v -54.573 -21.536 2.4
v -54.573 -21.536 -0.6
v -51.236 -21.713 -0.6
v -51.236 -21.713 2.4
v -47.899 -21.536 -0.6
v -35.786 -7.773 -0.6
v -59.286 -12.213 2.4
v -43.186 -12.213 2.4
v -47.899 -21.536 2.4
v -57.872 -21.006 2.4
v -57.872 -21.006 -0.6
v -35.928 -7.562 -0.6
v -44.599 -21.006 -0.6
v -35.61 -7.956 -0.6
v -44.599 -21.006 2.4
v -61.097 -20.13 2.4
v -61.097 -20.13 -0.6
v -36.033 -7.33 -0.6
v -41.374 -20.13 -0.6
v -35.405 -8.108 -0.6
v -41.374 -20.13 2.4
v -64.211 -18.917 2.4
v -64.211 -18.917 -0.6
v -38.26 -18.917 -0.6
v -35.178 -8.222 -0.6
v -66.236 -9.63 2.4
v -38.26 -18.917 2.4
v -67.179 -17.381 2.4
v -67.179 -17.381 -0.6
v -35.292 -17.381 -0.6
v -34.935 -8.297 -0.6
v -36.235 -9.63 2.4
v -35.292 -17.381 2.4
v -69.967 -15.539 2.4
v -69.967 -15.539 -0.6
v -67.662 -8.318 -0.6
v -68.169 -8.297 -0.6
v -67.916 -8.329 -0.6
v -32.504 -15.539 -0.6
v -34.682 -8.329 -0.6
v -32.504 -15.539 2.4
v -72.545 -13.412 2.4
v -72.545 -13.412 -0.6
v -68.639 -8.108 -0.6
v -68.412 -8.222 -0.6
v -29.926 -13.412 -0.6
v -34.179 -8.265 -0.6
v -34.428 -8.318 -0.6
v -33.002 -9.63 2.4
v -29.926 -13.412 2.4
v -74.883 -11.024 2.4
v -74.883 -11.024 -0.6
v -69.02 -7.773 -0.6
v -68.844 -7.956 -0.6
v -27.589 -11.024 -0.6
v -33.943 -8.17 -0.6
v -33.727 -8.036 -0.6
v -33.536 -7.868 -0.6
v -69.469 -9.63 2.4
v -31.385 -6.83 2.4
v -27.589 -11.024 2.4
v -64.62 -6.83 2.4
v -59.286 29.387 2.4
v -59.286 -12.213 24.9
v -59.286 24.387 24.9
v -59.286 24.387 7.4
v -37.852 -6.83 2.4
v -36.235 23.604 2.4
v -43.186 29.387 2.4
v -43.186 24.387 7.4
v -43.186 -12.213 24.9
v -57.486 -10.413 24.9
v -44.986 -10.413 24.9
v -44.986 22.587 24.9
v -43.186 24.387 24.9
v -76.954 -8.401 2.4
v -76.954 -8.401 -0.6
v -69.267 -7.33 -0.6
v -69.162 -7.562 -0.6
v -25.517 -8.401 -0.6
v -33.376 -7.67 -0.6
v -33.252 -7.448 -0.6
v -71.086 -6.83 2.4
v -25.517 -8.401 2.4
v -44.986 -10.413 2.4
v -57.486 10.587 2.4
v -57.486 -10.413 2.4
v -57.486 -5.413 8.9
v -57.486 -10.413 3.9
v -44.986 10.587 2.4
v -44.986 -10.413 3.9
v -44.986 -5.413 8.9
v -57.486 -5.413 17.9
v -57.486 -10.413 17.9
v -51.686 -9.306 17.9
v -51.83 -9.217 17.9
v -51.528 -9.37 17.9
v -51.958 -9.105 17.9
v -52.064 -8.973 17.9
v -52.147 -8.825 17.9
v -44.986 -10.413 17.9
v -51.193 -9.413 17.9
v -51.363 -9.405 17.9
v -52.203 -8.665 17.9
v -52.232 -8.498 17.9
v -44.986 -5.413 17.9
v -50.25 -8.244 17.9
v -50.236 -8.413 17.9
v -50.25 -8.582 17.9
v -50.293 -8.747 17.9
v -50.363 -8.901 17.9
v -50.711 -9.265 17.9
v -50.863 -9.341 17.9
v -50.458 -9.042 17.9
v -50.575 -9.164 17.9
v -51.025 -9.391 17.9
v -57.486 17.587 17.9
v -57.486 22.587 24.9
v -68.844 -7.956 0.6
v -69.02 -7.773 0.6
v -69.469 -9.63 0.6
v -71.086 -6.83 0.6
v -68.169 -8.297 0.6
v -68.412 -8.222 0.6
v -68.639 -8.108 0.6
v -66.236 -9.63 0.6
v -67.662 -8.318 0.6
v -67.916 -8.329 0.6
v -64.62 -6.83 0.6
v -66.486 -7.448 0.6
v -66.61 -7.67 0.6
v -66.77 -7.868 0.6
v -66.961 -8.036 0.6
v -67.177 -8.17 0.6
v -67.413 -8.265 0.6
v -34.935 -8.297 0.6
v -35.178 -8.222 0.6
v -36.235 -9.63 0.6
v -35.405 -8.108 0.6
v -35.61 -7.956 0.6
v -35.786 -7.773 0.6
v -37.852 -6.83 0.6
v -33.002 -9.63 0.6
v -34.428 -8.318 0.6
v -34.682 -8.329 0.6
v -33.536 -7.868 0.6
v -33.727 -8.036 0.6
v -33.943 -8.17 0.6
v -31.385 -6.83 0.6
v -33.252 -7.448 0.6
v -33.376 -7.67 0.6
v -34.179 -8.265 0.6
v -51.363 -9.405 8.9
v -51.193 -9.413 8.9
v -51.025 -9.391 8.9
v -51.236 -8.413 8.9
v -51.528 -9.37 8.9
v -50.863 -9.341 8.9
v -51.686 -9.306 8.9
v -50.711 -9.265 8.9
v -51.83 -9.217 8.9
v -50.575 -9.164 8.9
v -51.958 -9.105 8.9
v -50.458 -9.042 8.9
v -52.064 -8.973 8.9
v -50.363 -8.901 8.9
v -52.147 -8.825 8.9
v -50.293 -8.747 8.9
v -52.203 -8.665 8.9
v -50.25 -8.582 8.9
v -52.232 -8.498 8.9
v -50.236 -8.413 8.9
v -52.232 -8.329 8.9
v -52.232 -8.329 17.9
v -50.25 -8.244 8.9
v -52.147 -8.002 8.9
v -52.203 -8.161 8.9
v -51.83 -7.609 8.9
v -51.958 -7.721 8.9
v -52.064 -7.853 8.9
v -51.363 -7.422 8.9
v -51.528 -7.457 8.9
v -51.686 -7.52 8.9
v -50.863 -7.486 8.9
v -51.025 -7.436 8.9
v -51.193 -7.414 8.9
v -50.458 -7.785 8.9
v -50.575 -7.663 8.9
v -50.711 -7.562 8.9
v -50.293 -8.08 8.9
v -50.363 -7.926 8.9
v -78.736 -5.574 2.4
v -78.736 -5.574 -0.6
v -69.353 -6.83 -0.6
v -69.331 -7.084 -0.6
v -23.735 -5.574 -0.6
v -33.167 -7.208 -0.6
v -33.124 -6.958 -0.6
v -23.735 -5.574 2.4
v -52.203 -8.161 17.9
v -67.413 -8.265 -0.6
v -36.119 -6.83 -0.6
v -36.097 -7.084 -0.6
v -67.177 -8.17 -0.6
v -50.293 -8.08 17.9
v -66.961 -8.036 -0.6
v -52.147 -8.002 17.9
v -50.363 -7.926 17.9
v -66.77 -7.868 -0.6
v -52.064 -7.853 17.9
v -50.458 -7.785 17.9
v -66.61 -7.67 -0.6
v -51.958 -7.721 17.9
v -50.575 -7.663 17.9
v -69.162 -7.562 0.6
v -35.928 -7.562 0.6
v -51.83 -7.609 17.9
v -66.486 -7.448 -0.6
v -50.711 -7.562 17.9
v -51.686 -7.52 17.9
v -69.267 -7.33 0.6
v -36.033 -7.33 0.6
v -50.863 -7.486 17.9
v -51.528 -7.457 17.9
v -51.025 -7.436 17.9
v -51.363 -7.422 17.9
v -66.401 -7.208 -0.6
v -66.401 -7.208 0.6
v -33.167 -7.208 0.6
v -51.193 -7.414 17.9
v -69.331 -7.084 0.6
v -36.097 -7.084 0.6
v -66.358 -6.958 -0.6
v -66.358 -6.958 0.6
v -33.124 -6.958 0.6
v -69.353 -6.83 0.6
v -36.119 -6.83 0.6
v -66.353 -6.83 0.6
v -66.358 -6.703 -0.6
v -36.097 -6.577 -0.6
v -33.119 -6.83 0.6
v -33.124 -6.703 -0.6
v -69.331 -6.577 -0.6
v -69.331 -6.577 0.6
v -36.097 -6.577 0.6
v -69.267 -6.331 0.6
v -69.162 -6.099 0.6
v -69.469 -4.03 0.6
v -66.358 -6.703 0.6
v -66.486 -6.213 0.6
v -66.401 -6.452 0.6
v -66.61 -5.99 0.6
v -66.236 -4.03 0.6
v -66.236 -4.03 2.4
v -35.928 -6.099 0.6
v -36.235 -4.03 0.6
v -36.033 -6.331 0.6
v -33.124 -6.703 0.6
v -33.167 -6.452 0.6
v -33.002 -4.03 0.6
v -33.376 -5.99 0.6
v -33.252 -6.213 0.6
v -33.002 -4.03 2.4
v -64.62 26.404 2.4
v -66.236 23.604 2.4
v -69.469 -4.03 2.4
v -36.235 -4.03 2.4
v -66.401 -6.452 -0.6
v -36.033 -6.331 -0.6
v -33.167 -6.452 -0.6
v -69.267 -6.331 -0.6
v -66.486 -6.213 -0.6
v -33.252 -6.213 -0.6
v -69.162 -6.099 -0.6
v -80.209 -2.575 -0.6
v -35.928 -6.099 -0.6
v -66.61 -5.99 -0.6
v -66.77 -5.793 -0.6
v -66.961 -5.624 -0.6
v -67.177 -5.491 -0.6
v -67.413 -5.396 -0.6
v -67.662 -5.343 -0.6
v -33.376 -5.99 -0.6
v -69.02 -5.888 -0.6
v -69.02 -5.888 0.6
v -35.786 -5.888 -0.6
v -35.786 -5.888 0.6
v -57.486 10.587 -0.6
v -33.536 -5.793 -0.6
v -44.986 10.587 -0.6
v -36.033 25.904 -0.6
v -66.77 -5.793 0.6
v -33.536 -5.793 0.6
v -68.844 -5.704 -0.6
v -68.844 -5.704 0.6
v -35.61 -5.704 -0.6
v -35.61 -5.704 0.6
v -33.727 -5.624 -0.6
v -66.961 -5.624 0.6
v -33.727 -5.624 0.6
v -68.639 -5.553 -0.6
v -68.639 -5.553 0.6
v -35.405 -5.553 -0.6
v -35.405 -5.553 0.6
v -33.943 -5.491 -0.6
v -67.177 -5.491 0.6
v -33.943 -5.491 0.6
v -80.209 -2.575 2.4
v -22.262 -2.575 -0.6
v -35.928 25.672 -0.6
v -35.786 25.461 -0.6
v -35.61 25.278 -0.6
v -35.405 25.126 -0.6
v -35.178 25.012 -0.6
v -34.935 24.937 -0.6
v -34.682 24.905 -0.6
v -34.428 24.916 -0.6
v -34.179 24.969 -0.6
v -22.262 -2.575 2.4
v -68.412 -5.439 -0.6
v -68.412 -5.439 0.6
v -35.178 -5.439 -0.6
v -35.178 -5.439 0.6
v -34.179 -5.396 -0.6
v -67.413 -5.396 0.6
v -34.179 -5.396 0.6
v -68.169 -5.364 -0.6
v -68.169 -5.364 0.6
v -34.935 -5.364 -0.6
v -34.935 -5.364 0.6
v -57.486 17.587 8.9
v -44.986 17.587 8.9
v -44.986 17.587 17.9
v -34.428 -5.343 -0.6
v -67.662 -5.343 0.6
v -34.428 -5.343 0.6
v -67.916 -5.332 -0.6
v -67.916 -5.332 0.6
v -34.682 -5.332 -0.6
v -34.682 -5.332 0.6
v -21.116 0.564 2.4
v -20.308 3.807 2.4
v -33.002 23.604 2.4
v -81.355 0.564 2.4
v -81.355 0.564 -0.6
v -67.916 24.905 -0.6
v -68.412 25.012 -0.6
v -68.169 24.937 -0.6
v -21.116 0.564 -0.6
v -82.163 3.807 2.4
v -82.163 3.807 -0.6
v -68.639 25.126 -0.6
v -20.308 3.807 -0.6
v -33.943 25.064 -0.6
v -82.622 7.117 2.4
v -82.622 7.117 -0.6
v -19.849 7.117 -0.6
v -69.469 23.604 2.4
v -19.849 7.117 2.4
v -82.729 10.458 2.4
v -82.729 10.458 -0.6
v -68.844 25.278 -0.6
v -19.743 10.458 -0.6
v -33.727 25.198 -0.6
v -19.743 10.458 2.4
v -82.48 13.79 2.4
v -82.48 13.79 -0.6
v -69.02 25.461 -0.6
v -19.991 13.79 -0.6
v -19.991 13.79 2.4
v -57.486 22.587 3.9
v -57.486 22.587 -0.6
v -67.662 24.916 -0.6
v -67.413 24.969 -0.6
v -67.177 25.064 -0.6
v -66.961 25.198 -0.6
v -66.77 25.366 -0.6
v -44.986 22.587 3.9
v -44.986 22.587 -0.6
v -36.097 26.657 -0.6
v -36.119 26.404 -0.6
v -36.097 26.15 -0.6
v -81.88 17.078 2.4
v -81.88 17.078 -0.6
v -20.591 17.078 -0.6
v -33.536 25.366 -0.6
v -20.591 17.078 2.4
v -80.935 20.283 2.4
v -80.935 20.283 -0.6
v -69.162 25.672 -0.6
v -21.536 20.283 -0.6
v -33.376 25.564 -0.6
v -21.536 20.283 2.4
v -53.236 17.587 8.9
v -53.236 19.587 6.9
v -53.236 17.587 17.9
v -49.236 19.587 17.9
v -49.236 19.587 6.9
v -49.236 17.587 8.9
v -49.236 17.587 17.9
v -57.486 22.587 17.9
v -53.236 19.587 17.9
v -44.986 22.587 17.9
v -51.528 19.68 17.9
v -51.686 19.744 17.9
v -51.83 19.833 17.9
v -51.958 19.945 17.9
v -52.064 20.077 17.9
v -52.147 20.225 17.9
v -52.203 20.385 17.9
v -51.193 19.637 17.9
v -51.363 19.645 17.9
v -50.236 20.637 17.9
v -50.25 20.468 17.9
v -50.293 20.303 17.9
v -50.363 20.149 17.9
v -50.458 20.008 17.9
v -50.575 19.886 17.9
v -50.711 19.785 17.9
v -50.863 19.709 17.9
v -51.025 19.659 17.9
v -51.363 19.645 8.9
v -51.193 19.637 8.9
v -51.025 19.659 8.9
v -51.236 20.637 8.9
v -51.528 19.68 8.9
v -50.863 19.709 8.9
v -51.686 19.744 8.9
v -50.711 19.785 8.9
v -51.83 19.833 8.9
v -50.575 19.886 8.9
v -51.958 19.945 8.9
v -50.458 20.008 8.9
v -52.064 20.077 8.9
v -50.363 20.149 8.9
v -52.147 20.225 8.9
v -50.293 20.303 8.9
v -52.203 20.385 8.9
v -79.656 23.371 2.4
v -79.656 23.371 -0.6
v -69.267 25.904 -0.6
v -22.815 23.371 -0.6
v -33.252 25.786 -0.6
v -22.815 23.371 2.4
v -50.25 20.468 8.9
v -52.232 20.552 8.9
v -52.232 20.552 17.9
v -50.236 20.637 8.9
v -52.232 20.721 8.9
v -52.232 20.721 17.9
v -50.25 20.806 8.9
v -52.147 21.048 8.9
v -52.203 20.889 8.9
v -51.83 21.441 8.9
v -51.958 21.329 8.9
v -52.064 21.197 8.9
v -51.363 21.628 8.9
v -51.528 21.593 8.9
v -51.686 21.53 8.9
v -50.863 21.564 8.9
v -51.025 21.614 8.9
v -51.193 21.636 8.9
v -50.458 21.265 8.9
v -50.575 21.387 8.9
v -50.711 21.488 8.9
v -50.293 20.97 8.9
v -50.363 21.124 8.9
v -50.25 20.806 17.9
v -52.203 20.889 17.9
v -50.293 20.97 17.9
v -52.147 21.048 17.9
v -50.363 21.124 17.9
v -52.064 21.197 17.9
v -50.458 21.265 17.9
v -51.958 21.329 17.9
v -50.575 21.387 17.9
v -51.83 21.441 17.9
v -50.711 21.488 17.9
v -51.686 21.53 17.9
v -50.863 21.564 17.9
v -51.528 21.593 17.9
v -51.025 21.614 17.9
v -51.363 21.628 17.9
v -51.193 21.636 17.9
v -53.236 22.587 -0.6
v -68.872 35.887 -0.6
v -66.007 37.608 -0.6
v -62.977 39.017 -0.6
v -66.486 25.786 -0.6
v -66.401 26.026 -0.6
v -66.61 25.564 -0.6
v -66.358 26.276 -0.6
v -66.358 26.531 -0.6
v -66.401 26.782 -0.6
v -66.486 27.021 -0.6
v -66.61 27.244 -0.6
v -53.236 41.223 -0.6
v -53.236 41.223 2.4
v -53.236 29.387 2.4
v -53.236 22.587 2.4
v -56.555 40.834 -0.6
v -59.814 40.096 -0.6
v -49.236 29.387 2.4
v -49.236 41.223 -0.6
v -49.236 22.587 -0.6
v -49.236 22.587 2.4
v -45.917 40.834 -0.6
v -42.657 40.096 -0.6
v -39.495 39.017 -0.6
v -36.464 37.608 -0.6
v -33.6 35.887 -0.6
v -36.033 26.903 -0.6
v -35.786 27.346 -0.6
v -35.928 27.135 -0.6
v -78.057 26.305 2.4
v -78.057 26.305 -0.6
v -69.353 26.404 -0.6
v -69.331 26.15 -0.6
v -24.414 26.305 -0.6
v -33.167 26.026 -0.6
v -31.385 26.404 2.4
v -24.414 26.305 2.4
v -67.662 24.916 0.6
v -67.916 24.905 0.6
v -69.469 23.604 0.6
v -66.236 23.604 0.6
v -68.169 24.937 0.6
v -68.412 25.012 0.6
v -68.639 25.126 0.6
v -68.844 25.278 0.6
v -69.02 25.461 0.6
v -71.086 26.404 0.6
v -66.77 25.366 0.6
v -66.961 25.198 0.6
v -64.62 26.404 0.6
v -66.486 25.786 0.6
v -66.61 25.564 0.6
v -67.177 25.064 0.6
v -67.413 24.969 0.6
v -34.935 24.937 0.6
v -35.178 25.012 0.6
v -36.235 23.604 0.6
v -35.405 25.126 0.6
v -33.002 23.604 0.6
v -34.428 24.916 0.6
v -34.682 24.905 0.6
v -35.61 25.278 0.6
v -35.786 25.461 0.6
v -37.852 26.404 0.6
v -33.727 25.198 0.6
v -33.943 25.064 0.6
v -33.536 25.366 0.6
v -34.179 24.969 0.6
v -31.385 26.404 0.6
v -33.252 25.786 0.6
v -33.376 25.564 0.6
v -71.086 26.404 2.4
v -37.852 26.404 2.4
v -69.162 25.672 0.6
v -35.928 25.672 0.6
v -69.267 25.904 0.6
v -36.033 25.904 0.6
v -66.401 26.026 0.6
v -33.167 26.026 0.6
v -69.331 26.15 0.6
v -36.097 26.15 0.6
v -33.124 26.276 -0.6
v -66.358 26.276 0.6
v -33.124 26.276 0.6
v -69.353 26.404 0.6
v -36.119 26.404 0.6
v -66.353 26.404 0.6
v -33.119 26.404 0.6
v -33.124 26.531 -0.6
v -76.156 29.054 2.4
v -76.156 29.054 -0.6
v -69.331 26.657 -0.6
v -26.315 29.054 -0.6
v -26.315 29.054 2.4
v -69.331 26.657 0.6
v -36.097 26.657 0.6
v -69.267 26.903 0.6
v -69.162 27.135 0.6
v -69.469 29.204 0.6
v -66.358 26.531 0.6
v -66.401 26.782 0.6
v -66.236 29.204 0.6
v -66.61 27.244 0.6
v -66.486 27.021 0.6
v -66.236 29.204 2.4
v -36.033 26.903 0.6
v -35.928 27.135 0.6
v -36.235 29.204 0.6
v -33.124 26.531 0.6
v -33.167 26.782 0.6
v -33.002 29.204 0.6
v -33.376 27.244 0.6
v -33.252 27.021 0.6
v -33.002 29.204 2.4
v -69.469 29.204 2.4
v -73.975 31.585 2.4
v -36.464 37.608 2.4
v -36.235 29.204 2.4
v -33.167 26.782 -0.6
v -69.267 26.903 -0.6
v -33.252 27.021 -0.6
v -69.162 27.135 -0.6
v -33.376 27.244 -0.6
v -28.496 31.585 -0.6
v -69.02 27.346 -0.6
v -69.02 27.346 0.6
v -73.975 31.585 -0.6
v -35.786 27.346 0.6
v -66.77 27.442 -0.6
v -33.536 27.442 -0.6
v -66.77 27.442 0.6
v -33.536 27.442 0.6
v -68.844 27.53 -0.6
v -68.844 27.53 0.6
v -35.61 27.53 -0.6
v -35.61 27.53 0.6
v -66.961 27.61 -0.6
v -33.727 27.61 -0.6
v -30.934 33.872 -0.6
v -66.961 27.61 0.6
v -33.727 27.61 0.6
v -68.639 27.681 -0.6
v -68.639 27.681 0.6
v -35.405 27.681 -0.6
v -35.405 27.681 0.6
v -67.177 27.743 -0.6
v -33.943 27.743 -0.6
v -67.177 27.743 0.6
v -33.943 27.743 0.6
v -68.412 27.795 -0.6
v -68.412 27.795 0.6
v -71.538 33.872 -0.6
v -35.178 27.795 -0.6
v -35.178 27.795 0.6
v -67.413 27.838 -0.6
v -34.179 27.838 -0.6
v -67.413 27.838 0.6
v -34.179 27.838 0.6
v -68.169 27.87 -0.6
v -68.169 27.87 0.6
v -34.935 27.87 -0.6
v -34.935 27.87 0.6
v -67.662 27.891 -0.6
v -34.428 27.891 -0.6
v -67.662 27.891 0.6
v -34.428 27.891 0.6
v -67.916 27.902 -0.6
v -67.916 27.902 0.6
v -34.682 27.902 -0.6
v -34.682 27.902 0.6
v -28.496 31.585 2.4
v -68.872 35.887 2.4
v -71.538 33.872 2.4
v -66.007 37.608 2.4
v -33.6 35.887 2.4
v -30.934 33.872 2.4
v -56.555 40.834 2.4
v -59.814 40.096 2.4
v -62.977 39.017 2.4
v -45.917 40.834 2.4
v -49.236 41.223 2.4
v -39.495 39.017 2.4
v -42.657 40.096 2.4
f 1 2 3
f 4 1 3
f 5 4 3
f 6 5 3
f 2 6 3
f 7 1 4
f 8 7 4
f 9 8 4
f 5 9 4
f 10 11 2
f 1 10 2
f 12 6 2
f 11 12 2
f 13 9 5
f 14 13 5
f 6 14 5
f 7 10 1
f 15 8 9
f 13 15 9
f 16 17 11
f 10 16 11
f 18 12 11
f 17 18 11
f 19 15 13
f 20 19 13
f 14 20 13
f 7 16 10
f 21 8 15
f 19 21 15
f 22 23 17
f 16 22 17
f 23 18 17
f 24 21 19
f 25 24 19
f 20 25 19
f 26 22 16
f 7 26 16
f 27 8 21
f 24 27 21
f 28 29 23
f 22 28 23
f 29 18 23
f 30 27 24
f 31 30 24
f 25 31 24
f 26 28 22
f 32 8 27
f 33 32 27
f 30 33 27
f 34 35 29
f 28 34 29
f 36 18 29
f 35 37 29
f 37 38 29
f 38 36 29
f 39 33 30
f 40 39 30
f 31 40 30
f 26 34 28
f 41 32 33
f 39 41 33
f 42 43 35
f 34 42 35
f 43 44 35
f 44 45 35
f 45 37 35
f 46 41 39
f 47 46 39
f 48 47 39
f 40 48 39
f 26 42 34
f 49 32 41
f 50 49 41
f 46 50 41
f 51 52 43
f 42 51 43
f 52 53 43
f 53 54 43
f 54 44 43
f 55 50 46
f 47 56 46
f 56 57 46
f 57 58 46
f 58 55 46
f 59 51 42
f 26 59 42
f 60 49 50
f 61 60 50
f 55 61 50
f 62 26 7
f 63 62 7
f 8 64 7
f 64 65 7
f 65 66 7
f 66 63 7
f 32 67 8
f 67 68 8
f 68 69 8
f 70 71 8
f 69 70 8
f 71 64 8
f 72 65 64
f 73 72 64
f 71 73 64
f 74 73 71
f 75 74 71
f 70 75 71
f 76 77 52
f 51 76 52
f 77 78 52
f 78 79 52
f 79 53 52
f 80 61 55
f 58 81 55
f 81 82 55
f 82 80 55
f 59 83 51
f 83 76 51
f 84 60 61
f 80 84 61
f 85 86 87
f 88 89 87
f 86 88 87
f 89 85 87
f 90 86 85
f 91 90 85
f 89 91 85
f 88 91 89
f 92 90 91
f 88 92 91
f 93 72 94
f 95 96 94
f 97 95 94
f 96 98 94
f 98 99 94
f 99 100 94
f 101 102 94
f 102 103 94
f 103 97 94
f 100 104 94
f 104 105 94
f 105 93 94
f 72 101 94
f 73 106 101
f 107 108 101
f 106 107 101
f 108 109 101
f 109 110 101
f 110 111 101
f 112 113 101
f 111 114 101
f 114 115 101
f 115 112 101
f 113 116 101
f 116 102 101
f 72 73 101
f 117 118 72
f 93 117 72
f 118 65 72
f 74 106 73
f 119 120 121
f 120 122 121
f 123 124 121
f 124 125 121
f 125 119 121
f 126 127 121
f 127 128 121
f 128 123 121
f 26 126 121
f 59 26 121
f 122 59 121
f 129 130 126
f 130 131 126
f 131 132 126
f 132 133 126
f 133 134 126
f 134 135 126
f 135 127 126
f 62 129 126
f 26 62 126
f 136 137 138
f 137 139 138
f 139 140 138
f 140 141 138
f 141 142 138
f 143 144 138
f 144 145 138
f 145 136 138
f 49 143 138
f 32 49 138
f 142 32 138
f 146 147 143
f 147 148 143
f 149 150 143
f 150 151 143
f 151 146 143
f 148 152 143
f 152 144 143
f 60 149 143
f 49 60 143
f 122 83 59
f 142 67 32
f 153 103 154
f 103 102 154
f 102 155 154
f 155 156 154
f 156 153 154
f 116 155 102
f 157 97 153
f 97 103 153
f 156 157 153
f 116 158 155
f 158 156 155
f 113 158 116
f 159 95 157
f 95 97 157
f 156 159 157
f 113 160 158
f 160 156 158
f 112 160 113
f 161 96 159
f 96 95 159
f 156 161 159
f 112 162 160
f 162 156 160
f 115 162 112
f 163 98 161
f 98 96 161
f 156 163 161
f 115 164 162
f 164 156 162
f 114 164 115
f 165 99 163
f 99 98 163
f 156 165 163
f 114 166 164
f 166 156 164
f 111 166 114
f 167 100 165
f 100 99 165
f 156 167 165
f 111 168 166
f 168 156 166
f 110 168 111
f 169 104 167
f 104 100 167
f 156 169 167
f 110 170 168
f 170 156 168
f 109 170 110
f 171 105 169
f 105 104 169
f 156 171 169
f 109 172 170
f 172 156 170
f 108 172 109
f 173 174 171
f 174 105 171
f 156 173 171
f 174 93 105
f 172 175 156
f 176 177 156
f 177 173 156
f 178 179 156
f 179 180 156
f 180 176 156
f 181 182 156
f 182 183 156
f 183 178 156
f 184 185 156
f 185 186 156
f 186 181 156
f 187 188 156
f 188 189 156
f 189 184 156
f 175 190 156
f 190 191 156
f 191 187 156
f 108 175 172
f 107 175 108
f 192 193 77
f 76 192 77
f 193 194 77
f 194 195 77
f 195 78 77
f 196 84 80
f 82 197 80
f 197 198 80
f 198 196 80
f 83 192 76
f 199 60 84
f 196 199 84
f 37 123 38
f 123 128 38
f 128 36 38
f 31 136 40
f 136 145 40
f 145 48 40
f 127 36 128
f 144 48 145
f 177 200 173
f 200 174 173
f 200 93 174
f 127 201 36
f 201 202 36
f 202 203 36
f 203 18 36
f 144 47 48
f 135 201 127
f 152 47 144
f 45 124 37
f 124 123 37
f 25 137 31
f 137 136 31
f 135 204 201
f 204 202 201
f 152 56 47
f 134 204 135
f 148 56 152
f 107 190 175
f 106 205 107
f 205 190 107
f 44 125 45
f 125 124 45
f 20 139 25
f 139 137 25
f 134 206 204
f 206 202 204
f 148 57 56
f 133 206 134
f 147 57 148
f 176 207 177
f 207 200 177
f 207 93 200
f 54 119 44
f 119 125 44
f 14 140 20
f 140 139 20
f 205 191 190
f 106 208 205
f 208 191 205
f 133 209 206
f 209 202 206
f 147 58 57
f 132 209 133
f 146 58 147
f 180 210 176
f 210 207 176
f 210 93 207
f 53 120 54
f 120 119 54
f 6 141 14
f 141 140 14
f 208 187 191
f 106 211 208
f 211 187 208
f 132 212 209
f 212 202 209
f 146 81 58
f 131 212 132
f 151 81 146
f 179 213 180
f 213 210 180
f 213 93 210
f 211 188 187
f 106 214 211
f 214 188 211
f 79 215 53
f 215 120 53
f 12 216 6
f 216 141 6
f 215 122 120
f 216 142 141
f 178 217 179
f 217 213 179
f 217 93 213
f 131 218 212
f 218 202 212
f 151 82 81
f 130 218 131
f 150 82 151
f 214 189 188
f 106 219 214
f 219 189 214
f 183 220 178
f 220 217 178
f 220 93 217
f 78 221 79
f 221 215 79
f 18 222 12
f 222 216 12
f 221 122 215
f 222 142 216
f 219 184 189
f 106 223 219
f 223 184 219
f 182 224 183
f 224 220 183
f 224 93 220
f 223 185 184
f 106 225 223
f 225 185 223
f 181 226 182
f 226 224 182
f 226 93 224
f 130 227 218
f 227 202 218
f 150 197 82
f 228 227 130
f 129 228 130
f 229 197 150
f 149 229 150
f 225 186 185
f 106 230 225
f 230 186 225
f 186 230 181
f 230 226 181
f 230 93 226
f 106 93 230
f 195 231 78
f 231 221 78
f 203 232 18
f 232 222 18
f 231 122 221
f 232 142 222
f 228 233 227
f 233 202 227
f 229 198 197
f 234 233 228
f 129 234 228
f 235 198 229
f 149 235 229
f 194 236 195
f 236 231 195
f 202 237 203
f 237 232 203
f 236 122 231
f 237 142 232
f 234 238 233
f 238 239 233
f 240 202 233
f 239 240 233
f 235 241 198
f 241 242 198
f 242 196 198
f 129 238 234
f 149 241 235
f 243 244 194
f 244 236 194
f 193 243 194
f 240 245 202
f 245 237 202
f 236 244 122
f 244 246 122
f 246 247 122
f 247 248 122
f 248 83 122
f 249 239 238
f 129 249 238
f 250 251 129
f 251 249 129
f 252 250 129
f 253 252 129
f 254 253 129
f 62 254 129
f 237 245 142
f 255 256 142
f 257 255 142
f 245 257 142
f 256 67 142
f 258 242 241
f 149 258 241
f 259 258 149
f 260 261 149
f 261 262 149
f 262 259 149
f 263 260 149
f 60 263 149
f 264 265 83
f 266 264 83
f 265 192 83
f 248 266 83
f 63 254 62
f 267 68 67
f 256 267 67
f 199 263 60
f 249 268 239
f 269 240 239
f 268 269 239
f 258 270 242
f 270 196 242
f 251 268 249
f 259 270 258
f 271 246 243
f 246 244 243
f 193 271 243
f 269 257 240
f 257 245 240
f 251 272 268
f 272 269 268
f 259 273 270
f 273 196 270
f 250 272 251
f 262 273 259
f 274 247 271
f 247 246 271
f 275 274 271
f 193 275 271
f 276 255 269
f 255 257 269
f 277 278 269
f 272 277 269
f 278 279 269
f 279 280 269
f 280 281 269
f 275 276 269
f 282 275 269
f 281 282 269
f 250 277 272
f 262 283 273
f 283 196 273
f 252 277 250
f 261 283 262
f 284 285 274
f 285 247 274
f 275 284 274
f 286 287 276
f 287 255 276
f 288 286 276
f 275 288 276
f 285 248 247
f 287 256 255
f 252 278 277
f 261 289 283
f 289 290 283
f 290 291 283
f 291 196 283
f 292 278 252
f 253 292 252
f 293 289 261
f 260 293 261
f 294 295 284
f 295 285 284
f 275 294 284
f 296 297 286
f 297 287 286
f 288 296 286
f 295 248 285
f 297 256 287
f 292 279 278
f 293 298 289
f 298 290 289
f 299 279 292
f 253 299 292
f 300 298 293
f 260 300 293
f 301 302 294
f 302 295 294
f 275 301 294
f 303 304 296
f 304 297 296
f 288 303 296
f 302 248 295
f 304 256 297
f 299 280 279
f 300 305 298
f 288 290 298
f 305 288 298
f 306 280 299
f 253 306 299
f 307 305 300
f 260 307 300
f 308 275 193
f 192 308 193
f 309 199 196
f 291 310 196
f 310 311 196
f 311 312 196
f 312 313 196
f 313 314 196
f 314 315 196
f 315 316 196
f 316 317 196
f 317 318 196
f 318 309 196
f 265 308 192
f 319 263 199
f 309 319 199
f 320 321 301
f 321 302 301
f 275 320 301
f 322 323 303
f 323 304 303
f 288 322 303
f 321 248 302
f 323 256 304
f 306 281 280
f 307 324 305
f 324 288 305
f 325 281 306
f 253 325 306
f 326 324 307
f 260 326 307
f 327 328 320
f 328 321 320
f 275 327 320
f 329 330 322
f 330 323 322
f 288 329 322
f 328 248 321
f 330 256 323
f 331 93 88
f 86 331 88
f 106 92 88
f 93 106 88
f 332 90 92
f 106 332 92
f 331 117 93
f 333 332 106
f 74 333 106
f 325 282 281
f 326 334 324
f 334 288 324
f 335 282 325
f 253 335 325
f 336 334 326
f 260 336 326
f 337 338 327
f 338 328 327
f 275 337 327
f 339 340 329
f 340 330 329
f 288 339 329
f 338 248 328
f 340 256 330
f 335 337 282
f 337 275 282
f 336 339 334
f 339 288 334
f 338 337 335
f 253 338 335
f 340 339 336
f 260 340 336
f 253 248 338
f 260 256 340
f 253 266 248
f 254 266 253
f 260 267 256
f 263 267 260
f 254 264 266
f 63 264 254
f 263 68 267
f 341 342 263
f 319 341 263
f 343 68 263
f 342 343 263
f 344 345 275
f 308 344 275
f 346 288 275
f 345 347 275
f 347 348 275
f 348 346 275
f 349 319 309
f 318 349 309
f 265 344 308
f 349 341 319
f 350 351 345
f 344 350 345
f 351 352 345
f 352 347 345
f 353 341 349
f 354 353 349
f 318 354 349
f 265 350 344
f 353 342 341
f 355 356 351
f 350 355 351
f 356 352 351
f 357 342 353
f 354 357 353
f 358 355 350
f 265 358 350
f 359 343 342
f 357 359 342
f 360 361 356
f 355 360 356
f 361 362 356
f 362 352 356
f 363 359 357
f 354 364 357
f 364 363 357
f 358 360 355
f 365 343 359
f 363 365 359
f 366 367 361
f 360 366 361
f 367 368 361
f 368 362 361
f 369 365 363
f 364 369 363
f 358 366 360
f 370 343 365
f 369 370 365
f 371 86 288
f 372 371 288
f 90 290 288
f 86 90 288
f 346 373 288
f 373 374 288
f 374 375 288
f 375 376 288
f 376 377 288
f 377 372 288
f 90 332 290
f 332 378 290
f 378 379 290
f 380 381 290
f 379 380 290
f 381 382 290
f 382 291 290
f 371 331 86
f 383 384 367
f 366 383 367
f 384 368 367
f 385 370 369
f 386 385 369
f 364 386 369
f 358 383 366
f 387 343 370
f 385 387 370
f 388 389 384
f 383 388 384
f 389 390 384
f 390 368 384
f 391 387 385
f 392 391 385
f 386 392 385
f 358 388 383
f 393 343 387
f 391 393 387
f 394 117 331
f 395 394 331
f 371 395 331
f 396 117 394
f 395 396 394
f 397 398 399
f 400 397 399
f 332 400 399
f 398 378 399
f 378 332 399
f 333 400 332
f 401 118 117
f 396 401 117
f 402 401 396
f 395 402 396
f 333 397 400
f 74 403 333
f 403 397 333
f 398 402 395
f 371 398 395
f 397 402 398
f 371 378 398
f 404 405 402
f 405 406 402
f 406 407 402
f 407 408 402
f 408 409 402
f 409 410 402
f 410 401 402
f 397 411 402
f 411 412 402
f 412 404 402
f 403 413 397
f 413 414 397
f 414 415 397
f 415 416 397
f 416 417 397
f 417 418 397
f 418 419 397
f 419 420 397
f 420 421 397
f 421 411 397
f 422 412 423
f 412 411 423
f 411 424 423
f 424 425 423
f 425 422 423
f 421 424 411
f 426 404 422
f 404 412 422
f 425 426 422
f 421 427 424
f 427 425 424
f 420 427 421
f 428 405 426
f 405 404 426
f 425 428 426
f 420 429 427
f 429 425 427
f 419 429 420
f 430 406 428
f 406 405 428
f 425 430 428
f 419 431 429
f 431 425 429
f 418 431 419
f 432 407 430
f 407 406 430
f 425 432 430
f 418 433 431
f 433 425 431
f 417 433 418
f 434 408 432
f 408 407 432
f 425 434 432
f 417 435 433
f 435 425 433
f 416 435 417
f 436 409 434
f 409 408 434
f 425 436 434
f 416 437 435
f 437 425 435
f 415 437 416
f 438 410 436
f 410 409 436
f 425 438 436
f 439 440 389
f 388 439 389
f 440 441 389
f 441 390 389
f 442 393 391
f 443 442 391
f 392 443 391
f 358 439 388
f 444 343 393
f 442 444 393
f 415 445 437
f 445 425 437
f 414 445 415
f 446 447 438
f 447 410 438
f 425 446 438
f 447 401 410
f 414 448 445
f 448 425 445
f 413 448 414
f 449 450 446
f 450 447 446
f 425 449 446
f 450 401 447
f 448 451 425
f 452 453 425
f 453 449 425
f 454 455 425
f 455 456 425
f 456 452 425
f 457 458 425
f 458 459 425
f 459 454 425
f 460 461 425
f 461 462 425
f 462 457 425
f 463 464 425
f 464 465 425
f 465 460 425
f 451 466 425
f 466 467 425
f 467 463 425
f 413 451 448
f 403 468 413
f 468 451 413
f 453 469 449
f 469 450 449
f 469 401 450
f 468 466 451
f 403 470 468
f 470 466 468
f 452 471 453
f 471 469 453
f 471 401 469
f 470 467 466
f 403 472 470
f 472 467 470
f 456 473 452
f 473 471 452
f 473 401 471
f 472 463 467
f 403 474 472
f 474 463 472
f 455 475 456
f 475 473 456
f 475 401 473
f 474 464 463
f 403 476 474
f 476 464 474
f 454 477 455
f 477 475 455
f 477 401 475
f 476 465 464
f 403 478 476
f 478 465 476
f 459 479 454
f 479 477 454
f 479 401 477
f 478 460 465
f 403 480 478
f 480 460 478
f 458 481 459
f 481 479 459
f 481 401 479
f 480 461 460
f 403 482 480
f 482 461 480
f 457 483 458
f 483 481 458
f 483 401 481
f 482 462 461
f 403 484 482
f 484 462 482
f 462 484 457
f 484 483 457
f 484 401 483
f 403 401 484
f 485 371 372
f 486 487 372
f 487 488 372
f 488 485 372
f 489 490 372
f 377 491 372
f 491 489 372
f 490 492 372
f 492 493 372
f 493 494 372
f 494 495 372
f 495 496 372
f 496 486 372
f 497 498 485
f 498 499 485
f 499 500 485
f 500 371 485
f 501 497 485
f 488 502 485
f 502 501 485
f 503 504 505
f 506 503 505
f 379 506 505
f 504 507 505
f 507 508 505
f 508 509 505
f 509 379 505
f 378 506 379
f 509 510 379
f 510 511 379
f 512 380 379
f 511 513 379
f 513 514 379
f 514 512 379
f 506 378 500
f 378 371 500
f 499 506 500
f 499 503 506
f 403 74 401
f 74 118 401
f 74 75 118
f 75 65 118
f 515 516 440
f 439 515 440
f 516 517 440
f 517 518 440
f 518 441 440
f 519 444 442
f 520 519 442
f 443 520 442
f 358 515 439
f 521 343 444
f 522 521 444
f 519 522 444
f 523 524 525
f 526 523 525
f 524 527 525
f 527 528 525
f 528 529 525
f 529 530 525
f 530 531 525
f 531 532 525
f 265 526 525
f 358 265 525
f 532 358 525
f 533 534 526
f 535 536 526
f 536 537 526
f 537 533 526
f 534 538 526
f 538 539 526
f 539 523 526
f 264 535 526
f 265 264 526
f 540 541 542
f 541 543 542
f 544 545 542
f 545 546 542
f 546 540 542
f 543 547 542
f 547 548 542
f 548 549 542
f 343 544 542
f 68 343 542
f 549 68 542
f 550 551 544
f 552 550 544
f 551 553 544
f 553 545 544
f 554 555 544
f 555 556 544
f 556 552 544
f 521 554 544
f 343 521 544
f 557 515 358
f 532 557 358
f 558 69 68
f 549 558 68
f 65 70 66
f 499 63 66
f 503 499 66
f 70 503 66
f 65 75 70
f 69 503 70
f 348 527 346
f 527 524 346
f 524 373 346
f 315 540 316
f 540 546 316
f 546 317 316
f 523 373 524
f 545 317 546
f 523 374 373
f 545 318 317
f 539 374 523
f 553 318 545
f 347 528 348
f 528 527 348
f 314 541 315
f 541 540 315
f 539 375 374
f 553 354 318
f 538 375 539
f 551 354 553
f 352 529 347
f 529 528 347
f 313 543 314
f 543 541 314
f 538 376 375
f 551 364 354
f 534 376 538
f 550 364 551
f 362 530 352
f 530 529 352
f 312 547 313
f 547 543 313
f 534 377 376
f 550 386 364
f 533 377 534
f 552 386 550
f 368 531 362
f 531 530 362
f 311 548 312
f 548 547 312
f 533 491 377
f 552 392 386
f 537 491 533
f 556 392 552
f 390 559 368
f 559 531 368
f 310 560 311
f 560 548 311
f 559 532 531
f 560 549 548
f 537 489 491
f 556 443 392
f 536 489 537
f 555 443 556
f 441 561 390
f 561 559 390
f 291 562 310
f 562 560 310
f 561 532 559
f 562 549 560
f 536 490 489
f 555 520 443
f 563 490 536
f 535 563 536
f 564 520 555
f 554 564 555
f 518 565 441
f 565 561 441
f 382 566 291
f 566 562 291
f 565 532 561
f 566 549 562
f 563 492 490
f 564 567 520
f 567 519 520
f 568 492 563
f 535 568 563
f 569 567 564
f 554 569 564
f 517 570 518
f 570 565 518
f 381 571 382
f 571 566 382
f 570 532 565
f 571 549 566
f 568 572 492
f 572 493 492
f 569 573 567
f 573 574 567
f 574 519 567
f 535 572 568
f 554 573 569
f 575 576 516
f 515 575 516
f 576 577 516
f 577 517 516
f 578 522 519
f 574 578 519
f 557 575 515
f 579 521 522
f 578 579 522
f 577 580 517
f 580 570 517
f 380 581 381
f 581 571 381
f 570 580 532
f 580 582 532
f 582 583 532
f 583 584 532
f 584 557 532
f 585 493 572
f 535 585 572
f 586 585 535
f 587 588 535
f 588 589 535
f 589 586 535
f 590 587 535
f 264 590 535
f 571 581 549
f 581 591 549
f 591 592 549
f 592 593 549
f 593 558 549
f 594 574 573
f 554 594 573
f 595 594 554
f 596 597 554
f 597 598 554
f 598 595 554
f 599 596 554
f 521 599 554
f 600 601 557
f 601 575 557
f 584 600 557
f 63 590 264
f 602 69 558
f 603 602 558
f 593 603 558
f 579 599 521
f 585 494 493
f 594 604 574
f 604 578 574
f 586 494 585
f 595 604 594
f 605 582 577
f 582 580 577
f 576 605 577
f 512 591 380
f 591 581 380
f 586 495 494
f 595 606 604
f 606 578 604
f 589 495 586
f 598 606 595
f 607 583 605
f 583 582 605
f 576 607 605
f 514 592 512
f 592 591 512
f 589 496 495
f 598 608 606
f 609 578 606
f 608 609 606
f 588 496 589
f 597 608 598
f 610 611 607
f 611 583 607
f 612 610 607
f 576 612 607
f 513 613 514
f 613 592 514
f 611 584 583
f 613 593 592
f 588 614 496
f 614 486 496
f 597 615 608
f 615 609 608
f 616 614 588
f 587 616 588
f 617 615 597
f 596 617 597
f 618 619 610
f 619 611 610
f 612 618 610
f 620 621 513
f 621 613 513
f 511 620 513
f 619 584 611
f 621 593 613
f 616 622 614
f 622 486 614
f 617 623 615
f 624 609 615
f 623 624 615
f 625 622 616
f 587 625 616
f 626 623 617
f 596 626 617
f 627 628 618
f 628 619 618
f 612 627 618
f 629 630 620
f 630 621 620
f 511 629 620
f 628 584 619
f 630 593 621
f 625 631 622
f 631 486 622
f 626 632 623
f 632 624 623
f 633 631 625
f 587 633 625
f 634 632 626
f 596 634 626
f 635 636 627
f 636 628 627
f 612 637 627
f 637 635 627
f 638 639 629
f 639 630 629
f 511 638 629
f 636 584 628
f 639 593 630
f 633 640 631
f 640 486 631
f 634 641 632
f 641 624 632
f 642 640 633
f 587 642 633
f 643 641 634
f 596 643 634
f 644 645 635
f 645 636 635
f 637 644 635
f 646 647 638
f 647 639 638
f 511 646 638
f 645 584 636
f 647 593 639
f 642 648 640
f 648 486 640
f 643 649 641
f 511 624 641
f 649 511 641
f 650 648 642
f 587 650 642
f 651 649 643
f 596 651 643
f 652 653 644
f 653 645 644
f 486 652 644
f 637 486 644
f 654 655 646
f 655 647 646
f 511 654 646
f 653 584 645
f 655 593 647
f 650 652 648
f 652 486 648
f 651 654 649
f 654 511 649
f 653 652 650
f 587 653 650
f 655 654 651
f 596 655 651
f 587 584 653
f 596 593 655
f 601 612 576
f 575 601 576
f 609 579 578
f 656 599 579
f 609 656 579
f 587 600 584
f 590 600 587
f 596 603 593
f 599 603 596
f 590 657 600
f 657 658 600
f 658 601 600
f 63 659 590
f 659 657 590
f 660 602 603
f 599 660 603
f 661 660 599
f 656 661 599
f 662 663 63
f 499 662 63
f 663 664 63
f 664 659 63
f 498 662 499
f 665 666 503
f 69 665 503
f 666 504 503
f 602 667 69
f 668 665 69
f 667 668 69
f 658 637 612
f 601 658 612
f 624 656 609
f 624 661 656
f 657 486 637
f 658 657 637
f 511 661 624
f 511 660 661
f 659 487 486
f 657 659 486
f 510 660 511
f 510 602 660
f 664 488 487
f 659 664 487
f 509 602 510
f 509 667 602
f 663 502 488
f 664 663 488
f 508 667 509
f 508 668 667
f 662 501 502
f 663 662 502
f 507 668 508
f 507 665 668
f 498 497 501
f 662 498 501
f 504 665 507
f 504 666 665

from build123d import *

# Parameters (mm, degrees)
CROQUIS1_R              = 31.5
SALIENTE_EXTRUIR1_DEPTH = 2.4
CROQUIS2_W              = 16.1
CROQUIS2_H              = 36.6
CROQUIS2_W_2            = 12.5
CROQUIS2_H_2            = 33
SALIENTE_EXTRUIR2_DEPTH = 22.5
CROQUIS5_W              = 16.1
CROQUIS5_H              = 36.6
CORTAR_EXTRUIR2_DEPTH   = 9
CROQUIS6_R              = 1.5
CORTAR_EXTRUIR3_DEPTH   = 2.4
CROQUIS7_W              = 12.5
CROQUIS7_H              = 9
SALIENTE_EXTRUIR3_DEPTH = 33
CROQUIS8_R              = 1
CORTAR_EXTRUIR5_DEPTH   = 9
SALIENTE_EXTRUIR4_DEPTH = 12.5
CROQUIS10_W             = 4
CROQUIS10_H             = 2
CORTAR_EXTRUIR6_DEPTH   = 9
SALIENTE_EXTRUIR5_DEPTH = 2.4
SALIENTE_EXTRUIR6_DEPTH = 16.1
CORTAR_EXTRUIR7_DEPTH   = 1.8
CROQUIS14_R             = 1.5
SALIENTE_EXTRUIR7_DEPTH = 0.6


with BuildPart() as part:
    # Croquis1 → Saliente-Extruir1 (new body)
    with BuildSketch(Plane.XY):
        with Locations((-51.235671923, 9.786589019)):
            Circle(CROQUIS1_R)
    extrude(amount=SALIENTE_EXTRUIR1_DEPTH)

    # Croquis2 → Saliente-Extruir2 (add)
    with BuildSketch(Plane.XY.offset(2.4)):
        with Locations((-51.235671923, 6.086589019)):
            Rectangle(CROQUIS2_W, CROQUIS2_H)
        with Locations((-51.235671923, 6.086589019)):
            Rectangle(CROQUIS2_W_2, CROQUIS2_H_2, mode=Mode.SUBTRACT)
    extrude(amount=SALIENTE_EXTRUIR2_DEPTH)

    # Croquis5 → Cortar-Extruir2 (cut)
    with BuildSketch(Plane.XY.offset(2.4)):
        with Locations((-51.235671923, 6.086589019)):
            Rectangle(CROQUIS5_W, CROQUIS5_H)
    extrude(amount=-CORTAR_EXTRUIR2_DEPTH, mode=Mode.SUBTRACT)


with BuildPart() as cortar_extruir2_piece_1:
    # of the separate pieces the step leaves, piece 1, a body of its own (cortar_extruir2_pieces)
    add(part.part.solids().sort_by_distance((-19.735671923, 9.786589019, 0))[0])

    # Croquis6 → Cortar-Extruir3 (cut)
    with BuildSketch(Plane(origin=(0, 0, 0), x_dir=(-1, 0, 0), z_dir=(0, 0, -1))):
        with Locations((34.618662565, 26.403598377)):
            Circle(CROQUIS6_R)
        with Locations((67.85268128, 26.403598377)):
            Circle(CROQUIS6_R)
        with Locations((67.85268128, -6.830420339)):
            Circle(CROQUIS6_R)
        with Locations((34.618662565, -6.830420339)):
            Circle(CROQUIS6_R)
        Polygon((51.235671923, 24.386589019), (53.235671923, 24.386589019), (53.235671923, 44.386589019), (49.235671923, 44.386589019), (49.235671923, 24.386589019), align=None)
    extrude(amount=-CORTAR_EXTRUIR3_DEPTH, mode=Mode.SUBTRACT)



with BuildPart() as cortar_extruir2_piece_2:
    # of the separate pieces the step leaves, piece 2, a body of its own (cortar_extruir2_pieces)
    add(part.part.solids().sort_by_distance((-59.285671923, -12.213410981, 24.9))[0])

    # Croquis7 → Saliente-Extruir3 (add)
    with BuildSketch(Plane.XZ.offset(-22.586589019)):
        with Locations((-51.235671923, 13.4)):
            Rectangle(CROQUIS7_W, CROQUIS7_H)
    extrude(amount=SALIENTE_EXTRUIR3_DEPTH)

    # Croquis8 → Cortar-Extruir5 (cut)
    with BuildSketch(Plane.XY.offset(17.9)):
        with Locations((-51.235671923, -8.413410981)):
            Circle(CROQUIS8_R)
        with Locations((-51.235671923, 20.636589019)):
            Circle(CROQUIS8_R)
        Polygon((-44.985671923, -5.413410981), (-57.485671923, -5.413410981), (-57.485671923, 17.586589019), (-53.235671923, 17.586589019), (-53.235671923, 19.586589019), (-49.235671923, 19.586589019), (-49.235671923, 17.586589019), (-44.985671923, 17.586589019), align=None)
    extrude(amount=-CORTAR_EXTRUIR5_DEPTH, mode=Mode.SUBTRACT)

    # Croquis9 → Saliente-Extruir4 (add)
    with BuildSketch(Plane.ZY.offset(44.985671923)):
        Polygon((8.9, -5.413410981), (3.9, -10.413410981), (8.9, -10.413410981), align=None)
        Polygon((8.9, 17.586589019), (3.9, 22.586589019), (8.9, 22.586589019), align=None)
    extrude(amount=SALIENTE_EXTRUIR4_DEPTH)

    # Croquis10 → Cortar-Extruir6 (cut)
    with BuildSketch(Plane.XY.offset(8.9)):
        with Locations((-51.235671923, 18.586589019)):
            Rectangle(CROQUIS10_W, CROQUIS10_H)
    extrude(amount=-CORTAR_EXTRUIR6_DEPTH, mode=Mode.SUBTRACT)


with BuildPart() as cortar_extruir2_piece_1_1:
    add(cortar_extruir2_piece_1.part)

    add(cortar_extruir2_piece_2.part)  # Saliente-Extruir5 merges Cortar-Extruir2 piece 2
    # Croquis11 → Saliente-Extruir5 (add)
    with BuildSketch(Plane(origin=(0, 0, 2.4), x_dir=(-1, 0, 0), z_dir=(0, 0, -1))):
        Polygon((49.235671923, 24.386589019), (43.185671923, 24.386589019), (43.185671923, -12.213410981), (59.285671923, -12.213410981), (59.285671923, 24.386589019), (53.235671923, 24.386589019), (53.235671923, 22.586589019), (57.485671923, 22.586589019), (57.485671923, 10.586589019), (44.985671923, 10.586589019), (44.985671923, 22.586589019), (49.235671923, 22.586589019), align=None)
    extrude(amount=SALIENTE_EXTRUIR5_DEPTH)

    # Croquis12 → Saliente-Extruir6 (add)
    with BuildSketch(Plane(origin=(-43.185671923, 0, 0), x_dir=(0, 0, -1), z_dir=(1, 0, 0))):
        Polygon((-2.4, 24.386589019), (-7.4, 24.386589019), (-2.4, 29.386589019), align=None)
    extrude(amount=-SALIENTE_EXTRUIR6_DEPTH)

    # Croquis13 → Cortar-Extruir7 (cut)
    with BuildSketch(Plane.XY.offset(2.4)):
        Polygon((-31.385501057, -6.830420339), (-33.002081811, -4.030420339), (-36.235243318, -4.030420339), (-37.851824072, -6.830420339), (-36.235243318, -9.630420339), (-33.002081811, -9.630420339), align=None)
        Polygon((-64.619519773, -6.830420339), (-66.236100527, -4.030420339), (-69.469262034, -4.030420339), (-71.085842788, -6.830420339), (-69.469262034, -9.630420339), (-66.236100527, -9.630420339), align=None)
        Polygon((-37.851824072, 26.403598377), (-36.235243318, 23.603598377), (-33.002081811, 23.603598377), (-31.385501057, 26.403598377), (-33.002081811, 29.203598377), (-36.235243318, 29.203598377), align=None)
        Polygon((-71.085842788, 26.403598377), (-69.469262034, 23.603598377), (-66.236100527, 23.603598377), (-64.619519773, 26.403598377), (-66.236100527, 29.203598377), (-69.469262034, 29.203598377), align=None)
    extrude(amount=-CORTAR_EXTRUIR7_DEPTH, mode=Mode.SUBTRACT)

    # Croquis14 → Saliente-Extruir7 (add)
    with BuildSketch(Plane(origin=(0, 0, 0), x_dir=(-1, 0, 0), z_dir=(0, 0, -1))):
        with BuildLine():
            Line((53.235671923, 41.223032838), (53.235671923, 22.586589019))
            Line((53.235671923, 22.586589019), (57.485671923, 22.586589019))
            Line((57.485671923, 22.586589019), (57.485671923, 10.586589019))
            Line((57.485671923, 10.586589019), (44.985671923, 10.586589019))
            Line((44.985671923, 10.586589019), (44.985671923, 22.586589019))
            Line((44.985671923, 22.586589019), (49.235671923, 22.586589019))
            Line((49.235671923, 22.586589019), (49.235671923, 41.223032838))
            ThreePointArc((49.235671923, 41.223032838), (51.235671923, -21.713410981), (53.235671923, 41.223032838))
        make_face()
        with Locations((67.85268128, -6.830420339)):
            Circle(CROQUIS14_R, mode=Mode.SUBTRACT)
        with Locations((34.618662565, -6.830420339)):
            Circle(CROQUIS14_R, mode=Mode.SUBTRACT)
        with Locations((34.618662565, 26.403598377)):
            Circle(CROQUIS14_R, mode=Mode.SUBTRACT)
        with Locations((67.85268128, 26.403598377)):
            Circle(CROQUIS14_R, mode=Mode.SUBTRACT)
    extrude(amount=SALIENTE_EXTRUIR7_DEPTH)


solid = cortar_extruir2_piece_1_1.part
